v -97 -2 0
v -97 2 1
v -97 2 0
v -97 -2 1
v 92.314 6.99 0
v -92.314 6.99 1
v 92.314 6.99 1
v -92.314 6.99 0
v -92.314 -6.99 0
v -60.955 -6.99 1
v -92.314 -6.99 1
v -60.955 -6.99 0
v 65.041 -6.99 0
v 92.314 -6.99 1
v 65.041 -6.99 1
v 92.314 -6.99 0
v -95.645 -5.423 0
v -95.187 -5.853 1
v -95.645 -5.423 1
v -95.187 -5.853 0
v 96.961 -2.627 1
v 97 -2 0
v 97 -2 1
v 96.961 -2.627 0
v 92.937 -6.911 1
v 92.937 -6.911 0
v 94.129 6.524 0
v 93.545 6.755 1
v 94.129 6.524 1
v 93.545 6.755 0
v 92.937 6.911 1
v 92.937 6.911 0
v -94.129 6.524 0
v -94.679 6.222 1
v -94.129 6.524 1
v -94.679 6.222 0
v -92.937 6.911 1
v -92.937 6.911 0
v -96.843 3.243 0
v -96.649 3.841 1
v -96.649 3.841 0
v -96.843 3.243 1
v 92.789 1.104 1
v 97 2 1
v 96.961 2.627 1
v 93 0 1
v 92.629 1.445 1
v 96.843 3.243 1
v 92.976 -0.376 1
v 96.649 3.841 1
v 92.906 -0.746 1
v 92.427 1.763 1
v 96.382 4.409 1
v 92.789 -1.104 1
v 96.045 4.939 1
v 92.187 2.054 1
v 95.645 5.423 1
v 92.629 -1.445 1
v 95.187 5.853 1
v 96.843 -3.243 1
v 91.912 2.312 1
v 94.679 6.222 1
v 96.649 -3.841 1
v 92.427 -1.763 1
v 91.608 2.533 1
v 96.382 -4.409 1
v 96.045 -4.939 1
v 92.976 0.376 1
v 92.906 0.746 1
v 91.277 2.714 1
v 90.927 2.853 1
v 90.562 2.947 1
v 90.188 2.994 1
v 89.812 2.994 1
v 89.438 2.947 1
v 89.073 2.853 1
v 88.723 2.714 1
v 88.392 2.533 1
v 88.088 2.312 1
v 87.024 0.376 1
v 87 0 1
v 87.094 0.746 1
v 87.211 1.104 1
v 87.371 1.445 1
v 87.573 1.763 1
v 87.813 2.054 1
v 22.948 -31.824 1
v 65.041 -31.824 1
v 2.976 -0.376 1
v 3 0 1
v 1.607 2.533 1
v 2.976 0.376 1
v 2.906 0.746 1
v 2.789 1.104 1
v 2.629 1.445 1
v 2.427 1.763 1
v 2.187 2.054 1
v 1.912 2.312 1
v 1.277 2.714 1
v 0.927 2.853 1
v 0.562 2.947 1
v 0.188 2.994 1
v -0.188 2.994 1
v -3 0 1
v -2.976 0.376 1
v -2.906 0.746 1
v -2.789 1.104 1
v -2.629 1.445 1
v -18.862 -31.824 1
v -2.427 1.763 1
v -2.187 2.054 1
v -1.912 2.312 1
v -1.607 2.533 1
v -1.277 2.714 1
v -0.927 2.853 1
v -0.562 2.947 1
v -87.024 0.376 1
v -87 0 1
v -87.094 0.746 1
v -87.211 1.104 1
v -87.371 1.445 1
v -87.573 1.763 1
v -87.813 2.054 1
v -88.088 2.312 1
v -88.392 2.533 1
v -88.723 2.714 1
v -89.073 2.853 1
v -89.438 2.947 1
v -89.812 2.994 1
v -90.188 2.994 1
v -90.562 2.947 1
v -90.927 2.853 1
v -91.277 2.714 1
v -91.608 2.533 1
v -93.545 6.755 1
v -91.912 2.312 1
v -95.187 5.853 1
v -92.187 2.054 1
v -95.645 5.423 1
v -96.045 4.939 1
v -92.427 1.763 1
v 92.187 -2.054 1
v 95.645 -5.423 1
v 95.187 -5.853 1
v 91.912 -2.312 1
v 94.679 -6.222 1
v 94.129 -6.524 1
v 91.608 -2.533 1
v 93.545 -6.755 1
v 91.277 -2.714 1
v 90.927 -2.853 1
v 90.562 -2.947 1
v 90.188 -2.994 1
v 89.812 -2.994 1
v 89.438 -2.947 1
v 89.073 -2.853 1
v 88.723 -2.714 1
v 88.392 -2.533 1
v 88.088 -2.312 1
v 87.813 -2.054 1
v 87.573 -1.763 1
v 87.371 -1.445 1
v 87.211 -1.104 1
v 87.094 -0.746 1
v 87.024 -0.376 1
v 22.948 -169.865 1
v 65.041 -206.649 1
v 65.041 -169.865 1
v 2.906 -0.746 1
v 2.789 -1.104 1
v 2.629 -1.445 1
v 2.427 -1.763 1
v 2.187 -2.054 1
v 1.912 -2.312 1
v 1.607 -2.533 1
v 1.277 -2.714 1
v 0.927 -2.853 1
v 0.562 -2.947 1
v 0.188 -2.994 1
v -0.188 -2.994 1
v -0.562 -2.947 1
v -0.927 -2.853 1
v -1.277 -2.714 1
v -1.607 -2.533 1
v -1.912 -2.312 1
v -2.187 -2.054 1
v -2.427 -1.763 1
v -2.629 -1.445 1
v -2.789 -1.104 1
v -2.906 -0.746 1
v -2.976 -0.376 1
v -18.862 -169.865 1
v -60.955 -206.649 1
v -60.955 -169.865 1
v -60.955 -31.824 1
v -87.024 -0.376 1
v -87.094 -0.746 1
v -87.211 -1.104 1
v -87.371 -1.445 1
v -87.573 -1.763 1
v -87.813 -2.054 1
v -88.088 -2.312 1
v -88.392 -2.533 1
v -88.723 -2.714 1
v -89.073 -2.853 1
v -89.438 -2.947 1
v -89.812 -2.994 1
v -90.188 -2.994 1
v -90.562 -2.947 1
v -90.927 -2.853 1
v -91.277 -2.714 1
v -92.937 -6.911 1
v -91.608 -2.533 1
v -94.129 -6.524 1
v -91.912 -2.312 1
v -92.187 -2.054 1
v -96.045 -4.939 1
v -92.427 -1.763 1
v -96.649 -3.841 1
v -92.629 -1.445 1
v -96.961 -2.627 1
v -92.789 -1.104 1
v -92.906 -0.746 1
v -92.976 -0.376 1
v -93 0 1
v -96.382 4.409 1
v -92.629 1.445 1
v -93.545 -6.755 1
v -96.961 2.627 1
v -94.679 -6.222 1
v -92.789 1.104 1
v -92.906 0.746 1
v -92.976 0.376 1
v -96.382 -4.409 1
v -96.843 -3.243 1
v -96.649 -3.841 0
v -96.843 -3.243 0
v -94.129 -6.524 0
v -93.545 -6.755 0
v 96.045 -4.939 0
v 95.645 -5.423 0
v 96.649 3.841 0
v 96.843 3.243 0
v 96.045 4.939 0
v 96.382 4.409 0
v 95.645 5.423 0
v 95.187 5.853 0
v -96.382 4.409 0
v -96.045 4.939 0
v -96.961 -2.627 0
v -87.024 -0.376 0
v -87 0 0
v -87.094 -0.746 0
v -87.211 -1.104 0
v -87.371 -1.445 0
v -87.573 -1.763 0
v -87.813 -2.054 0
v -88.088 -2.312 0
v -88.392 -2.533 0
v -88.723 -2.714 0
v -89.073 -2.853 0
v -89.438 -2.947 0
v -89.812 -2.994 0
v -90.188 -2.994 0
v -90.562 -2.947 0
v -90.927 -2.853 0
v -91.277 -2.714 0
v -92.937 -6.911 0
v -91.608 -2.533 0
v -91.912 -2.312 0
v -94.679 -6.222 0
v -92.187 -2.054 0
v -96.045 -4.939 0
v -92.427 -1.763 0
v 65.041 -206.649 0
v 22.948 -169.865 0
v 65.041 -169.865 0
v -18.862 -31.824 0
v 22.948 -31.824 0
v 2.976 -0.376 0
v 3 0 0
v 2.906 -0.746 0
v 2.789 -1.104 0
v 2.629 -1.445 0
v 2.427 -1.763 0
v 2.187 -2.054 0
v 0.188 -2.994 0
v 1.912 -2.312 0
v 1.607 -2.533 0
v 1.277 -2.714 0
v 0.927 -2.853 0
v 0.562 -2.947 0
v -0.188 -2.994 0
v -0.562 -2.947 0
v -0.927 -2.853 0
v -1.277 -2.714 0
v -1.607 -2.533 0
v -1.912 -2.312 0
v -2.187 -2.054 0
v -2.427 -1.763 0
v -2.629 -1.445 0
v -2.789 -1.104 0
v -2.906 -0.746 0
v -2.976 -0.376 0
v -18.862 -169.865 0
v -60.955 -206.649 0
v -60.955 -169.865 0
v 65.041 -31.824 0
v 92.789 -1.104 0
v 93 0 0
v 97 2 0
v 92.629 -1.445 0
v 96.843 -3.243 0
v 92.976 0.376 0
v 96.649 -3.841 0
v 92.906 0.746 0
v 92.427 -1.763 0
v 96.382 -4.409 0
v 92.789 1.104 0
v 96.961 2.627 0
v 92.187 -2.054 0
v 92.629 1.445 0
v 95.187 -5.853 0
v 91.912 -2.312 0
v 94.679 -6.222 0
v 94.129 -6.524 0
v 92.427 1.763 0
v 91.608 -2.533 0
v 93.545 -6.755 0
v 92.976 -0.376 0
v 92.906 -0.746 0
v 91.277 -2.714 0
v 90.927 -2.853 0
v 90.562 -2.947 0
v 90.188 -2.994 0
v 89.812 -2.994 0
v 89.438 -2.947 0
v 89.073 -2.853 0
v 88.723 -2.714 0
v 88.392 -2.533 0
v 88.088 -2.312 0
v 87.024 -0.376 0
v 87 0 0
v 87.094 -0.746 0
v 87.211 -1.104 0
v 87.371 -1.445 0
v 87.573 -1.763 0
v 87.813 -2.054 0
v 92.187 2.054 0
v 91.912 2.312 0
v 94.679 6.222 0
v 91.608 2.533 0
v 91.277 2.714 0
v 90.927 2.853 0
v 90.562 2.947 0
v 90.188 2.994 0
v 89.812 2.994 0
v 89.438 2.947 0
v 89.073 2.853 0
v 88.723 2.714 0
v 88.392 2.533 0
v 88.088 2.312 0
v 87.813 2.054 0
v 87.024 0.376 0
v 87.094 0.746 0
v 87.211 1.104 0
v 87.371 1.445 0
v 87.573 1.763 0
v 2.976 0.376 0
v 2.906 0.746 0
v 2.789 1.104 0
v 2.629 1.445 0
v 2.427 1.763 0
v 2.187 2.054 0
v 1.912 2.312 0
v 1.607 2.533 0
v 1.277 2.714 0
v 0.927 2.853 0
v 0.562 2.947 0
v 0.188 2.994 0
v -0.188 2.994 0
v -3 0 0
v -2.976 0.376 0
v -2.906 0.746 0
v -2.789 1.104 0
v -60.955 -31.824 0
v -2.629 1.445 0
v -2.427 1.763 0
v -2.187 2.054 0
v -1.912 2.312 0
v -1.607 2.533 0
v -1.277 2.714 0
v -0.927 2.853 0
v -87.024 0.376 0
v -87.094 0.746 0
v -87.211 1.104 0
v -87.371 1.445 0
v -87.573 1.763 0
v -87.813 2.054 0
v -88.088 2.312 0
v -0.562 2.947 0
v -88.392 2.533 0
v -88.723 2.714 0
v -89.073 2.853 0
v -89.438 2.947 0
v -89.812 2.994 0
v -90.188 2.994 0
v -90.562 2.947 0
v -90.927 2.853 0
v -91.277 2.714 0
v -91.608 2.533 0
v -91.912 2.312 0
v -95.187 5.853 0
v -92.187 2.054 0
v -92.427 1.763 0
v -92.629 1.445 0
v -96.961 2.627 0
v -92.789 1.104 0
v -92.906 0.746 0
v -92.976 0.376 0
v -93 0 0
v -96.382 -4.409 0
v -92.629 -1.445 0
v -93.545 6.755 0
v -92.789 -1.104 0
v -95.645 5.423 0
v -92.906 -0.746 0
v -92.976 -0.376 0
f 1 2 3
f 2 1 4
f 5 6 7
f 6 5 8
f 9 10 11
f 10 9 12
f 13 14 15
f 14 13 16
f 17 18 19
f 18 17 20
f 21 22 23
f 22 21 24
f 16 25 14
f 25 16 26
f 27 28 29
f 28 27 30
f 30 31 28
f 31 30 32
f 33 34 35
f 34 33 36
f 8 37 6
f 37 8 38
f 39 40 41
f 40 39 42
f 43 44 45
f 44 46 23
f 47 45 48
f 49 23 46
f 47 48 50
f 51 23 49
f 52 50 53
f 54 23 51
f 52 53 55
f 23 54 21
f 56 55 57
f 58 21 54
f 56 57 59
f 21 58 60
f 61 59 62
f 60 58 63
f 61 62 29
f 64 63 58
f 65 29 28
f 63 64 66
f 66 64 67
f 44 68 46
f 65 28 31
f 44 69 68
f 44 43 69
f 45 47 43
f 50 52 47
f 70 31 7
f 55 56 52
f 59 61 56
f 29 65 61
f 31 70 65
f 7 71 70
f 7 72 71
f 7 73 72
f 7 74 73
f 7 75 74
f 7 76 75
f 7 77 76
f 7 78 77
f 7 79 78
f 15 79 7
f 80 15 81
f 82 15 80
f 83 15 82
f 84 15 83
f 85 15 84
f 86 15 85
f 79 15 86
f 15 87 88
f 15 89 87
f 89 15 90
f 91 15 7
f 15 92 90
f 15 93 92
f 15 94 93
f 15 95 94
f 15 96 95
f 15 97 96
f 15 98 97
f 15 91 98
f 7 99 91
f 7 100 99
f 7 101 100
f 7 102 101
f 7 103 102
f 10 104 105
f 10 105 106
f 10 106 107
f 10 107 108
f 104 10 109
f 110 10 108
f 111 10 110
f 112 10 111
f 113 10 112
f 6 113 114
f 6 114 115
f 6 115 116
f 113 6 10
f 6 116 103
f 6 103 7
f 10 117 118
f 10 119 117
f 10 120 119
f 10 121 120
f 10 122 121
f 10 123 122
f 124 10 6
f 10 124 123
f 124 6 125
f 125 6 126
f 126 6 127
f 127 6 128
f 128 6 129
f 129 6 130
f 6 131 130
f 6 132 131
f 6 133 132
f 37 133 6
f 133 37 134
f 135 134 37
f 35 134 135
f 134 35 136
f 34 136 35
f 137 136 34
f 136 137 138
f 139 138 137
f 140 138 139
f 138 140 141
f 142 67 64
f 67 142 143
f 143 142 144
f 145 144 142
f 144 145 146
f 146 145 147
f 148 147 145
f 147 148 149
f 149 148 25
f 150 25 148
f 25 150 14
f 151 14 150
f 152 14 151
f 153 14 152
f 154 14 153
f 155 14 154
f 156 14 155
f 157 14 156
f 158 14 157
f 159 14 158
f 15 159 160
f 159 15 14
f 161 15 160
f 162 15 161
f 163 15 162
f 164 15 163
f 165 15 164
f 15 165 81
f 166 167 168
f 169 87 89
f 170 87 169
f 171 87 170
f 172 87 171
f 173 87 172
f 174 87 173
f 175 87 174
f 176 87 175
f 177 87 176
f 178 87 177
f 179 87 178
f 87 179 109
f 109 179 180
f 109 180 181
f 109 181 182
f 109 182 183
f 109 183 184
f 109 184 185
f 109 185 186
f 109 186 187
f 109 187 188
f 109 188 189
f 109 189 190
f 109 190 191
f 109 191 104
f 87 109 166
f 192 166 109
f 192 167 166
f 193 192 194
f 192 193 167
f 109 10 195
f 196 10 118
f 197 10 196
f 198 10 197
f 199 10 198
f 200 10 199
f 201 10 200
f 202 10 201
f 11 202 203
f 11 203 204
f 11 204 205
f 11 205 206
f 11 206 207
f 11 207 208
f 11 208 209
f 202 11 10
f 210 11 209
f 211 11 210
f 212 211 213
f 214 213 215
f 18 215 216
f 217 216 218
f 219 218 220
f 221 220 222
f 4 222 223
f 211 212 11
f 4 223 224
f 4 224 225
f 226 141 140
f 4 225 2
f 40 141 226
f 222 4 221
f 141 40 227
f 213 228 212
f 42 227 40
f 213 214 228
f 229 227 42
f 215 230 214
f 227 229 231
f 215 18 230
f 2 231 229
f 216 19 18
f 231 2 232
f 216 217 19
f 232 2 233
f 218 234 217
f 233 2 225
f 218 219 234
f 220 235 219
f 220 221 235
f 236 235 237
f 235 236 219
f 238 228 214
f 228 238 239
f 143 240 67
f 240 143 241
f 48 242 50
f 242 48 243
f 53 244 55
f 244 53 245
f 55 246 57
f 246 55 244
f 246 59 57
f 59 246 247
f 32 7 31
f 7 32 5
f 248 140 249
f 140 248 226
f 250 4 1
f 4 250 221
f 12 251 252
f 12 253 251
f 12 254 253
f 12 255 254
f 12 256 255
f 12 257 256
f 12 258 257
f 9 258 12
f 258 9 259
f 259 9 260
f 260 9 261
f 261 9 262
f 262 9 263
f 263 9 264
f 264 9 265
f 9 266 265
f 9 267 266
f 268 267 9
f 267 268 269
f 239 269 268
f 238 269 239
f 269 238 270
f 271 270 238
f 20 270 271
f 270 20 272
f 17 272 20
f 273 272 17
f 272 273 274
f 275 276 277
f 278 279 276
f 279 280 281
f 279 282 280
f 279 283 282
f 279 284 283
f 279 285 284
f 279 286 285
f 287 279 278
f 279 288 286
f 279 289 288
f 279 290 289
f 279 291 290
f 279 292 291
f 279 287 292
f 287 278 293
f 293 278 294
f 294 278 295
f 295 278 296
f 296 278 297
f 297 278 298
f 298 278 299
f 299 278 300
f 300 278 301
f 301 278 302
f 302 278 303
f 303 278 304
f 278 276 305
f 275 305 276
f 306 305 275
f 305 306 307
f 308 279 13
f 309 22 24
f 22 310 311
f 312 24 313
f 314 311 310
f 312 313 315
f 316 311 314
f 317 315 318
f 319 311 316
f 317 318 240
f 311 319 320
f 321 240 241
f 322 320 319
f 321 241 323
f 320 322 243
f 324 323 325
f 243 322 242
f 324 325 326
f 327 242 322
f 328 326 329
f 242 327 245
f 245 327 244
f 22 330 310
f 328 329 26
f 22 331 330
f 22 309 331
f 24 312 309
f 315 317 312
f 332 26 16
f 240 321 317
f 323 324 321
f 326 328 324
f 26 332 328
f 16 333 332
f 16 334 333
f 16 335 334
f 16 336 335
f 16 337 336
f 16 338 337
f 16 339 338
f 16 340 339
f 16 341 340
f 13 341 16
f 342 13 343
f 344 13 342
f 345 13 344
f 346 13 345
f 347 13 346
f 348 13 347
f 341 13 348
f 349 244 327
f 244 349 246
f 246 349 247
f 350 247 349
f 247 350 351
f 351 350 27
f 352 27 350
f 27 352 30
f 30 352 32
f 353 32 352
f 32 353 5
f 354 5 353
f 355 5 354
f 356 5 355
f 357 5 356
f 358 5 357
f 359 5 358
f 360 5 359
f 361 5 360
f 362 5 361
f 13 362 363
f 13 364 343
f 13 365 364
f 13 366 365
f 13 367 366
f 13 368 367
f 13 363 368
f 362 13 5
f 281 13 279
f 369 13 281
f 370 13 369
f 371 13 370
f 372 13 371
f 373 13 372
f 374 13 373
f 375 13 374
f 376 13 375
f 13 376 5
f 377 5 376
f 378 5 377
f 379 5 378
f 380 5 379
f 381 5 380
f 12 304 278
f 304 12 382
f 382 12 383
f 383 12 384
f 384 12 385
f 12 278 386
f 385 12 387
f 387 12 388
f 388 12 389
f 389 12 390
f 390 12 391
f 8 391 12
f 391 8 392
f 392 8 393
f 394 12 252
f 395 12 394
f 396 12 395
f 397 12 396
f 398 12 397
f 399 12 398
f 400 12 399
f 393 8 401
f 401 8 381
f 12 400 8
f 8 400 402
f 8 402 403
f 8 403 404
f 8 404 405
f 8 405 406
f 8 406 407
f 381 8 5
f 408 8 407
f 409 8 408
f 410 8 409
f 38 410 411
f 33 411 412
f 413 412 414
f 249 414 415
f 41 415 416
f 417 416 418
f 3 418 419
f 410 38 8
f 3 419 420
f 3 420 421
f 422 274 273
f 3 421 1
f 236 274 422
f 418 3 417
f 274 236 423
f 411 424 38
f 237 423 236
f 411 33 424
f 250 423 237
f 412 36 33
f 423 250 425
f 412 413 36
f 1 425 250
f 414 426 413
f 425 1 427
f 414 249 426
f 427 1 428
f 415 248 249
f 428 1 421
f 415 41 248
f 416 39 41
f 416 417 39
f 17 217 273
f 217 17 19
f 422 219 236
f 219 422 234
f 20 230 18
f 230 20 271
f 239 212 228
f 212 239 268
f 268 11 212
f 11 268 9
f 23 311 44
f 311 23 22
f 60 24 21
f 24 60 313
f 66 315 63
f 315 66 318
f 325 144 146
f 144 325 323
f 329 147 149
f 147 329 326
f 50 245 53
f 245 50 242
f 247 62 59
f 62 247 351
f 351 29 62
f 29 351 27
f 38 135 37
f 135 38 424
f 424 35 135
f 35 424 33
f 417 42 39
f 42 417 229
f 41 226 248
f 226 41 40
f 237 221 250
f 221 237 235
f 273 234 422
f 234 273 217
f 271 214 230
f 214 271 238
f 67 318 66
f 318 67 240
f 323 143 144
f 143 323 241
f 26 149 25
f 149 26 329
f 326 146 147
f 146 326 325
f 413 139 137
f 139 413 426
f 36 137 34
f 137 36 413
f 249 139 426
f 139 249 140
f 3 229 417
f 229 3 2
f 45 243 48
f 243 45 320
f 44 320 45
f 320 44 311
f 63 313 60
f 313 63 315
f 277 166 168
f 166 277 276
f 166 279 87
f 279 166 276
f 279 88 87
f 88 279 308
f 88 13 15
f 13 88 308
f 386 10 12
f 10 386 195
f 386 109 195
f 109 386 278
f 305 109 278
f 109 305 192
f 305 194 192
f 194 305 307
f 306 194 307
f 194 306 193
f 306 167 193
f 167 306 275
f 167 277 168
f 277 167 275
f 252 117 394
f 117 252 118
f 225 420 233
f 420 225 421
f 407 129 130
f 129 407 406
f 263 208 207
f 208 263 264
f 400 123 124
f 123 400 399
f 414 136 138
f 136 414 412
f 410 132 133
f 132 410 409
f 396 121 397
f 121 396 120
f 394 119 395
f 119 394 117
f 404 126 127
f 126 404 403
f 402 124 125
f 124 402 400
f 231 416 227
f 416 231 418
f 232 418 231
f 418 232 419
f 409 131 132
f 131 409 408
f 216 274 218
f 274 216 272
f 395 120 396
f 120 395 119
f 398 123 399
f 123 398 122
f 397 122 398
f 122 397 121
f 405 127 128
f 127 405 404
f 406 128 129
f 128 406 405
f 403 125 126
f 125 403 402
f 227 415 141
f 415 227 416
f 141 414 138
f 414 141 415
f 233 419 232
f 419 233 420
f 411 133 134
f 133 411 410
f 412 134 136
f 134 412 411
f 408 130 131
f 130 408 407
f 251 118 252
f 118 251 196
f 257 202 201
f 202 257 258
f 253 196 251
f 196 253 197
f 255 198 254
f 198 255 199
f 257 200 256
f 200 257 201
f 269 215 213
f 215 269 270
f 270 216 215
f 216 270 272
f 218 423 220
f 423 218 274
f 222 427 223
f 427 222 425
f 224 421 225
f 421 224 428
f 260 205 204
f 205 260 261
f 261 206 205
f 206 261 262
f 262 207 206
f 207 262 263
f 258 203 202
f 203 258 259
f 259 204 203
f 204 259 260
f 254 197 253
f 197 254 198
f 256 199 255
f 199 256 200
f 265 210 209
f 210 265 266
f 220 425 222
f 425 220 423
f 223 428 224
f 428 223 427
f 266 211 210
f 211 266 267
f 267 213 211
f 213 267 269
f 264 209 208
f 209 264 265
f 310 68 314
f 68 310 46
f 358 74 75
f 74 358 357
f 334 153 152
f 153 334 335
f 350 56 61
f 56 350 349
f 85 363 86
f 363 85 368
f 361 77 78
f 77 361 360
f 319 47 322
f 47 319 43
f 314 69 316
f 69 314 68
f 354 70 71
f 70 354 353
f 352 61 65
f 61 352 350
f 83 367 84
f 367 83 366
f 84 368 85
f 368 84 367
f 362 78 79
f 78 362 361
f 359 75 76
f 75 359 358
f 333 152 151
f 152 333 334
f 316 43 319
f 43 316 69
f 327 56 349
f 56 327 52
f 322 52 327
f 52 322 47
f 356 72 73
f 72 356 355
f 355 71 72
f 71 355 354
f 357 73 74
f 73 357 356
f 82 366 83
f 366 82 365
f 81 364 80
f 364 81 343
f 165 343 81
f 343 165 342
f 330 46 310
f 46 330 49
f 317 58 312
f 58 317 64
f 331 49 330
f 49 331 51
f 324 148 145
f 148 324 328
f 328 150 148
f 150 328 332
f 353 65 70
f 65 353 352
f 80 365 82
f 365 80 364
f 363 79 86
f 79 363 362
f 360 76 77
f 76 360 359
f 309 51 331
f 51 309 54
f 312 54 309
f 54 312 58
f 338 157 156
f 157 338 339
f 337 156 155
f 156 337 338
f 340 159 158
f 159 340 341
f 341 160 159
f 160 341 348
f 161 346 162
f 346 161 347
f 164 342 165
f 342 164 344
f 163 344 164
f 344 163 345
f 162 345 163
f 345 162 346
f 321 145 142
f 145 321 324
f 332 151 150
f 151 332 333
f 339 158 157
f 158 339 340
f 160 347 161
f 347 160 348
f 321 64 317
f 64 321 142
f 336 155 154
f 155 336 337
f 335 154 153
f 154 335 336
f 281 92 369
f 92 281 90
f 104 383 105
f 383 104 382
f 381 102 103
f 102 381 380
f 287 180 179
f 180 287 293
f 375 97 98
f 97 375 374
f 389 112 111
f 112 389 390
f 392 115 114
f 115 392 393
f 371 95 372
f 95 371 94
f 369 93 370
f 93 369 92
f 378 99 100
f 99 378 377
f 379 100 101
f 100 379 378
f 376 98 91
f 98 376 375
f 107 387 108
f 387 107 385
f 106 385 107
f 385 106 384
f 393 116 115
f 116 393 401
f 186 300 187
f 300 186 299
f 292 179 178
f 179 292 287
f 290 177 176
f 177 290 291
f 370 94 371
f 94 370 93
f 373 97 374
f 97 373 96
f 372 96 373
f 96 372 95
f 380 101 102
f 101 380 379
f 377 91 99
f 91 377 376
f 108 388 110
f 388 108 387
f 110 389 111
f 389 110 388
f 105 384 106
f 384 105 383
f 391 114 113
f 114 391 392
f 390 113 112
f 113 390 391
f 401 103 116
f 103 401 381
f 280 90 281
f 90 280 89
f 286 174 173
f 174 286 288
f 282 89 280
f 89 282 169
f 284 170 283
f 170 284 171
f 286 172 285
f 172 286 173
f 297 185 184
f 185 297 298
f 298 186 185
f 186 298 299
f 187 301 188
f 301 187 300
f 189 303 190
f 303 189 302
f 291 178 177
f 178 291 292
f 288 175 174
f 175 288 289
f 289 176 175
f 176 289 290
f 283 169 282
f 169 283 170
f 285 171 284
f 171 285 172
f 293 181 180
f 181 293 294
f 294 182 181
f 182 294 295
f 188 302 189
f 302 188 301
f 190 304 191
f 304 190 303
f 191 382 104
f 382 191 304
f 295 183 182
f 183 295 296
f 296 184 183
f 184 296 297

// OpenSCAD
$fn = 50;


difference() {
	union() {
		translate(v = [0, 0, 0]) {
			rotate(a = [0, 0, 0]) {
				hull() {
					translate(v = [-92.0000000000, 2.0000000000, 0]) {
						rotate(a = [0, 0, 0]) {
							translate(v = [0, 0, 0]) {
								rotate(a = [0, 0, 0]) {
									cylinder(h = 1, r = 5);
								}
							}
						}
					}
					translate(v = [92.0000000000, 2.0000000000, 0]) {
						rotate(a = [0, 0, 0]) {
							translate(v = [0, 0, 0]) {
								rotate(a = [0, 0, 0]) {
									cylinder(h = 1, r = 5);
								}
							}
						}
					}
					translate(v = [-92.0000000000, -2.0000000000, 0]) {
						rotate(a = [0, 0, 0]) {
							translate(v = [0, 0, 0]) {
								rotate(a = [0, 0, 0]) {
									cylinder(h = 1, r = 5);
								}
							}
						}
					}
					translate(v = [92.0000000000, -2.0000000000, 0]) {
						rotate(a = [0, 0, 0]) {
							translate(v = [0, 0, 0]) {
								rotate(a = [0, 0, 0]) {
									cylinder(h = 1, r = 5);
								}
							}
						}
					}
				}
			}
		}
		translate(v = [0, 0, 0]) {
			rotate(a = [0, 0, 0]) {
				linear_extrude(height = 1) {
					text(font = "DejaVu Sans Mono:style=Bold", halign = "center", size = 209.0000000000, text = "I", valign = "top");
				}
			}
		}
	}
	union() {
		translate(v = [-90.0000000000, 0.0000000000, -125.0000000000]) {
			rotate(a = [0, 0, 0]) {
				cylinder(h = 250, r = 3.0000000000);
			}
		}
		translate(v = [90.0000000000, 0.0000000000, -125.0000000000]) {
			rotate(a = [0, 0, 0]) {
				cylinder(h = 250, r = 3.0000000000);
			}
		}
		translate(v = [90.0000000000, 0.0000000000, -125.0000000000]) {
			rotate(a = [0, 0, 0]) {
				cylinder(h = 250, r = 3.0000000000);
			}
		}
		translate(v = [0, 0, -125.0000000000]) {
			rotate(a = [0, 0, 0]) {
				cylinder(h = 250, r = 3.0000000000);
			}
		}
	}
}
